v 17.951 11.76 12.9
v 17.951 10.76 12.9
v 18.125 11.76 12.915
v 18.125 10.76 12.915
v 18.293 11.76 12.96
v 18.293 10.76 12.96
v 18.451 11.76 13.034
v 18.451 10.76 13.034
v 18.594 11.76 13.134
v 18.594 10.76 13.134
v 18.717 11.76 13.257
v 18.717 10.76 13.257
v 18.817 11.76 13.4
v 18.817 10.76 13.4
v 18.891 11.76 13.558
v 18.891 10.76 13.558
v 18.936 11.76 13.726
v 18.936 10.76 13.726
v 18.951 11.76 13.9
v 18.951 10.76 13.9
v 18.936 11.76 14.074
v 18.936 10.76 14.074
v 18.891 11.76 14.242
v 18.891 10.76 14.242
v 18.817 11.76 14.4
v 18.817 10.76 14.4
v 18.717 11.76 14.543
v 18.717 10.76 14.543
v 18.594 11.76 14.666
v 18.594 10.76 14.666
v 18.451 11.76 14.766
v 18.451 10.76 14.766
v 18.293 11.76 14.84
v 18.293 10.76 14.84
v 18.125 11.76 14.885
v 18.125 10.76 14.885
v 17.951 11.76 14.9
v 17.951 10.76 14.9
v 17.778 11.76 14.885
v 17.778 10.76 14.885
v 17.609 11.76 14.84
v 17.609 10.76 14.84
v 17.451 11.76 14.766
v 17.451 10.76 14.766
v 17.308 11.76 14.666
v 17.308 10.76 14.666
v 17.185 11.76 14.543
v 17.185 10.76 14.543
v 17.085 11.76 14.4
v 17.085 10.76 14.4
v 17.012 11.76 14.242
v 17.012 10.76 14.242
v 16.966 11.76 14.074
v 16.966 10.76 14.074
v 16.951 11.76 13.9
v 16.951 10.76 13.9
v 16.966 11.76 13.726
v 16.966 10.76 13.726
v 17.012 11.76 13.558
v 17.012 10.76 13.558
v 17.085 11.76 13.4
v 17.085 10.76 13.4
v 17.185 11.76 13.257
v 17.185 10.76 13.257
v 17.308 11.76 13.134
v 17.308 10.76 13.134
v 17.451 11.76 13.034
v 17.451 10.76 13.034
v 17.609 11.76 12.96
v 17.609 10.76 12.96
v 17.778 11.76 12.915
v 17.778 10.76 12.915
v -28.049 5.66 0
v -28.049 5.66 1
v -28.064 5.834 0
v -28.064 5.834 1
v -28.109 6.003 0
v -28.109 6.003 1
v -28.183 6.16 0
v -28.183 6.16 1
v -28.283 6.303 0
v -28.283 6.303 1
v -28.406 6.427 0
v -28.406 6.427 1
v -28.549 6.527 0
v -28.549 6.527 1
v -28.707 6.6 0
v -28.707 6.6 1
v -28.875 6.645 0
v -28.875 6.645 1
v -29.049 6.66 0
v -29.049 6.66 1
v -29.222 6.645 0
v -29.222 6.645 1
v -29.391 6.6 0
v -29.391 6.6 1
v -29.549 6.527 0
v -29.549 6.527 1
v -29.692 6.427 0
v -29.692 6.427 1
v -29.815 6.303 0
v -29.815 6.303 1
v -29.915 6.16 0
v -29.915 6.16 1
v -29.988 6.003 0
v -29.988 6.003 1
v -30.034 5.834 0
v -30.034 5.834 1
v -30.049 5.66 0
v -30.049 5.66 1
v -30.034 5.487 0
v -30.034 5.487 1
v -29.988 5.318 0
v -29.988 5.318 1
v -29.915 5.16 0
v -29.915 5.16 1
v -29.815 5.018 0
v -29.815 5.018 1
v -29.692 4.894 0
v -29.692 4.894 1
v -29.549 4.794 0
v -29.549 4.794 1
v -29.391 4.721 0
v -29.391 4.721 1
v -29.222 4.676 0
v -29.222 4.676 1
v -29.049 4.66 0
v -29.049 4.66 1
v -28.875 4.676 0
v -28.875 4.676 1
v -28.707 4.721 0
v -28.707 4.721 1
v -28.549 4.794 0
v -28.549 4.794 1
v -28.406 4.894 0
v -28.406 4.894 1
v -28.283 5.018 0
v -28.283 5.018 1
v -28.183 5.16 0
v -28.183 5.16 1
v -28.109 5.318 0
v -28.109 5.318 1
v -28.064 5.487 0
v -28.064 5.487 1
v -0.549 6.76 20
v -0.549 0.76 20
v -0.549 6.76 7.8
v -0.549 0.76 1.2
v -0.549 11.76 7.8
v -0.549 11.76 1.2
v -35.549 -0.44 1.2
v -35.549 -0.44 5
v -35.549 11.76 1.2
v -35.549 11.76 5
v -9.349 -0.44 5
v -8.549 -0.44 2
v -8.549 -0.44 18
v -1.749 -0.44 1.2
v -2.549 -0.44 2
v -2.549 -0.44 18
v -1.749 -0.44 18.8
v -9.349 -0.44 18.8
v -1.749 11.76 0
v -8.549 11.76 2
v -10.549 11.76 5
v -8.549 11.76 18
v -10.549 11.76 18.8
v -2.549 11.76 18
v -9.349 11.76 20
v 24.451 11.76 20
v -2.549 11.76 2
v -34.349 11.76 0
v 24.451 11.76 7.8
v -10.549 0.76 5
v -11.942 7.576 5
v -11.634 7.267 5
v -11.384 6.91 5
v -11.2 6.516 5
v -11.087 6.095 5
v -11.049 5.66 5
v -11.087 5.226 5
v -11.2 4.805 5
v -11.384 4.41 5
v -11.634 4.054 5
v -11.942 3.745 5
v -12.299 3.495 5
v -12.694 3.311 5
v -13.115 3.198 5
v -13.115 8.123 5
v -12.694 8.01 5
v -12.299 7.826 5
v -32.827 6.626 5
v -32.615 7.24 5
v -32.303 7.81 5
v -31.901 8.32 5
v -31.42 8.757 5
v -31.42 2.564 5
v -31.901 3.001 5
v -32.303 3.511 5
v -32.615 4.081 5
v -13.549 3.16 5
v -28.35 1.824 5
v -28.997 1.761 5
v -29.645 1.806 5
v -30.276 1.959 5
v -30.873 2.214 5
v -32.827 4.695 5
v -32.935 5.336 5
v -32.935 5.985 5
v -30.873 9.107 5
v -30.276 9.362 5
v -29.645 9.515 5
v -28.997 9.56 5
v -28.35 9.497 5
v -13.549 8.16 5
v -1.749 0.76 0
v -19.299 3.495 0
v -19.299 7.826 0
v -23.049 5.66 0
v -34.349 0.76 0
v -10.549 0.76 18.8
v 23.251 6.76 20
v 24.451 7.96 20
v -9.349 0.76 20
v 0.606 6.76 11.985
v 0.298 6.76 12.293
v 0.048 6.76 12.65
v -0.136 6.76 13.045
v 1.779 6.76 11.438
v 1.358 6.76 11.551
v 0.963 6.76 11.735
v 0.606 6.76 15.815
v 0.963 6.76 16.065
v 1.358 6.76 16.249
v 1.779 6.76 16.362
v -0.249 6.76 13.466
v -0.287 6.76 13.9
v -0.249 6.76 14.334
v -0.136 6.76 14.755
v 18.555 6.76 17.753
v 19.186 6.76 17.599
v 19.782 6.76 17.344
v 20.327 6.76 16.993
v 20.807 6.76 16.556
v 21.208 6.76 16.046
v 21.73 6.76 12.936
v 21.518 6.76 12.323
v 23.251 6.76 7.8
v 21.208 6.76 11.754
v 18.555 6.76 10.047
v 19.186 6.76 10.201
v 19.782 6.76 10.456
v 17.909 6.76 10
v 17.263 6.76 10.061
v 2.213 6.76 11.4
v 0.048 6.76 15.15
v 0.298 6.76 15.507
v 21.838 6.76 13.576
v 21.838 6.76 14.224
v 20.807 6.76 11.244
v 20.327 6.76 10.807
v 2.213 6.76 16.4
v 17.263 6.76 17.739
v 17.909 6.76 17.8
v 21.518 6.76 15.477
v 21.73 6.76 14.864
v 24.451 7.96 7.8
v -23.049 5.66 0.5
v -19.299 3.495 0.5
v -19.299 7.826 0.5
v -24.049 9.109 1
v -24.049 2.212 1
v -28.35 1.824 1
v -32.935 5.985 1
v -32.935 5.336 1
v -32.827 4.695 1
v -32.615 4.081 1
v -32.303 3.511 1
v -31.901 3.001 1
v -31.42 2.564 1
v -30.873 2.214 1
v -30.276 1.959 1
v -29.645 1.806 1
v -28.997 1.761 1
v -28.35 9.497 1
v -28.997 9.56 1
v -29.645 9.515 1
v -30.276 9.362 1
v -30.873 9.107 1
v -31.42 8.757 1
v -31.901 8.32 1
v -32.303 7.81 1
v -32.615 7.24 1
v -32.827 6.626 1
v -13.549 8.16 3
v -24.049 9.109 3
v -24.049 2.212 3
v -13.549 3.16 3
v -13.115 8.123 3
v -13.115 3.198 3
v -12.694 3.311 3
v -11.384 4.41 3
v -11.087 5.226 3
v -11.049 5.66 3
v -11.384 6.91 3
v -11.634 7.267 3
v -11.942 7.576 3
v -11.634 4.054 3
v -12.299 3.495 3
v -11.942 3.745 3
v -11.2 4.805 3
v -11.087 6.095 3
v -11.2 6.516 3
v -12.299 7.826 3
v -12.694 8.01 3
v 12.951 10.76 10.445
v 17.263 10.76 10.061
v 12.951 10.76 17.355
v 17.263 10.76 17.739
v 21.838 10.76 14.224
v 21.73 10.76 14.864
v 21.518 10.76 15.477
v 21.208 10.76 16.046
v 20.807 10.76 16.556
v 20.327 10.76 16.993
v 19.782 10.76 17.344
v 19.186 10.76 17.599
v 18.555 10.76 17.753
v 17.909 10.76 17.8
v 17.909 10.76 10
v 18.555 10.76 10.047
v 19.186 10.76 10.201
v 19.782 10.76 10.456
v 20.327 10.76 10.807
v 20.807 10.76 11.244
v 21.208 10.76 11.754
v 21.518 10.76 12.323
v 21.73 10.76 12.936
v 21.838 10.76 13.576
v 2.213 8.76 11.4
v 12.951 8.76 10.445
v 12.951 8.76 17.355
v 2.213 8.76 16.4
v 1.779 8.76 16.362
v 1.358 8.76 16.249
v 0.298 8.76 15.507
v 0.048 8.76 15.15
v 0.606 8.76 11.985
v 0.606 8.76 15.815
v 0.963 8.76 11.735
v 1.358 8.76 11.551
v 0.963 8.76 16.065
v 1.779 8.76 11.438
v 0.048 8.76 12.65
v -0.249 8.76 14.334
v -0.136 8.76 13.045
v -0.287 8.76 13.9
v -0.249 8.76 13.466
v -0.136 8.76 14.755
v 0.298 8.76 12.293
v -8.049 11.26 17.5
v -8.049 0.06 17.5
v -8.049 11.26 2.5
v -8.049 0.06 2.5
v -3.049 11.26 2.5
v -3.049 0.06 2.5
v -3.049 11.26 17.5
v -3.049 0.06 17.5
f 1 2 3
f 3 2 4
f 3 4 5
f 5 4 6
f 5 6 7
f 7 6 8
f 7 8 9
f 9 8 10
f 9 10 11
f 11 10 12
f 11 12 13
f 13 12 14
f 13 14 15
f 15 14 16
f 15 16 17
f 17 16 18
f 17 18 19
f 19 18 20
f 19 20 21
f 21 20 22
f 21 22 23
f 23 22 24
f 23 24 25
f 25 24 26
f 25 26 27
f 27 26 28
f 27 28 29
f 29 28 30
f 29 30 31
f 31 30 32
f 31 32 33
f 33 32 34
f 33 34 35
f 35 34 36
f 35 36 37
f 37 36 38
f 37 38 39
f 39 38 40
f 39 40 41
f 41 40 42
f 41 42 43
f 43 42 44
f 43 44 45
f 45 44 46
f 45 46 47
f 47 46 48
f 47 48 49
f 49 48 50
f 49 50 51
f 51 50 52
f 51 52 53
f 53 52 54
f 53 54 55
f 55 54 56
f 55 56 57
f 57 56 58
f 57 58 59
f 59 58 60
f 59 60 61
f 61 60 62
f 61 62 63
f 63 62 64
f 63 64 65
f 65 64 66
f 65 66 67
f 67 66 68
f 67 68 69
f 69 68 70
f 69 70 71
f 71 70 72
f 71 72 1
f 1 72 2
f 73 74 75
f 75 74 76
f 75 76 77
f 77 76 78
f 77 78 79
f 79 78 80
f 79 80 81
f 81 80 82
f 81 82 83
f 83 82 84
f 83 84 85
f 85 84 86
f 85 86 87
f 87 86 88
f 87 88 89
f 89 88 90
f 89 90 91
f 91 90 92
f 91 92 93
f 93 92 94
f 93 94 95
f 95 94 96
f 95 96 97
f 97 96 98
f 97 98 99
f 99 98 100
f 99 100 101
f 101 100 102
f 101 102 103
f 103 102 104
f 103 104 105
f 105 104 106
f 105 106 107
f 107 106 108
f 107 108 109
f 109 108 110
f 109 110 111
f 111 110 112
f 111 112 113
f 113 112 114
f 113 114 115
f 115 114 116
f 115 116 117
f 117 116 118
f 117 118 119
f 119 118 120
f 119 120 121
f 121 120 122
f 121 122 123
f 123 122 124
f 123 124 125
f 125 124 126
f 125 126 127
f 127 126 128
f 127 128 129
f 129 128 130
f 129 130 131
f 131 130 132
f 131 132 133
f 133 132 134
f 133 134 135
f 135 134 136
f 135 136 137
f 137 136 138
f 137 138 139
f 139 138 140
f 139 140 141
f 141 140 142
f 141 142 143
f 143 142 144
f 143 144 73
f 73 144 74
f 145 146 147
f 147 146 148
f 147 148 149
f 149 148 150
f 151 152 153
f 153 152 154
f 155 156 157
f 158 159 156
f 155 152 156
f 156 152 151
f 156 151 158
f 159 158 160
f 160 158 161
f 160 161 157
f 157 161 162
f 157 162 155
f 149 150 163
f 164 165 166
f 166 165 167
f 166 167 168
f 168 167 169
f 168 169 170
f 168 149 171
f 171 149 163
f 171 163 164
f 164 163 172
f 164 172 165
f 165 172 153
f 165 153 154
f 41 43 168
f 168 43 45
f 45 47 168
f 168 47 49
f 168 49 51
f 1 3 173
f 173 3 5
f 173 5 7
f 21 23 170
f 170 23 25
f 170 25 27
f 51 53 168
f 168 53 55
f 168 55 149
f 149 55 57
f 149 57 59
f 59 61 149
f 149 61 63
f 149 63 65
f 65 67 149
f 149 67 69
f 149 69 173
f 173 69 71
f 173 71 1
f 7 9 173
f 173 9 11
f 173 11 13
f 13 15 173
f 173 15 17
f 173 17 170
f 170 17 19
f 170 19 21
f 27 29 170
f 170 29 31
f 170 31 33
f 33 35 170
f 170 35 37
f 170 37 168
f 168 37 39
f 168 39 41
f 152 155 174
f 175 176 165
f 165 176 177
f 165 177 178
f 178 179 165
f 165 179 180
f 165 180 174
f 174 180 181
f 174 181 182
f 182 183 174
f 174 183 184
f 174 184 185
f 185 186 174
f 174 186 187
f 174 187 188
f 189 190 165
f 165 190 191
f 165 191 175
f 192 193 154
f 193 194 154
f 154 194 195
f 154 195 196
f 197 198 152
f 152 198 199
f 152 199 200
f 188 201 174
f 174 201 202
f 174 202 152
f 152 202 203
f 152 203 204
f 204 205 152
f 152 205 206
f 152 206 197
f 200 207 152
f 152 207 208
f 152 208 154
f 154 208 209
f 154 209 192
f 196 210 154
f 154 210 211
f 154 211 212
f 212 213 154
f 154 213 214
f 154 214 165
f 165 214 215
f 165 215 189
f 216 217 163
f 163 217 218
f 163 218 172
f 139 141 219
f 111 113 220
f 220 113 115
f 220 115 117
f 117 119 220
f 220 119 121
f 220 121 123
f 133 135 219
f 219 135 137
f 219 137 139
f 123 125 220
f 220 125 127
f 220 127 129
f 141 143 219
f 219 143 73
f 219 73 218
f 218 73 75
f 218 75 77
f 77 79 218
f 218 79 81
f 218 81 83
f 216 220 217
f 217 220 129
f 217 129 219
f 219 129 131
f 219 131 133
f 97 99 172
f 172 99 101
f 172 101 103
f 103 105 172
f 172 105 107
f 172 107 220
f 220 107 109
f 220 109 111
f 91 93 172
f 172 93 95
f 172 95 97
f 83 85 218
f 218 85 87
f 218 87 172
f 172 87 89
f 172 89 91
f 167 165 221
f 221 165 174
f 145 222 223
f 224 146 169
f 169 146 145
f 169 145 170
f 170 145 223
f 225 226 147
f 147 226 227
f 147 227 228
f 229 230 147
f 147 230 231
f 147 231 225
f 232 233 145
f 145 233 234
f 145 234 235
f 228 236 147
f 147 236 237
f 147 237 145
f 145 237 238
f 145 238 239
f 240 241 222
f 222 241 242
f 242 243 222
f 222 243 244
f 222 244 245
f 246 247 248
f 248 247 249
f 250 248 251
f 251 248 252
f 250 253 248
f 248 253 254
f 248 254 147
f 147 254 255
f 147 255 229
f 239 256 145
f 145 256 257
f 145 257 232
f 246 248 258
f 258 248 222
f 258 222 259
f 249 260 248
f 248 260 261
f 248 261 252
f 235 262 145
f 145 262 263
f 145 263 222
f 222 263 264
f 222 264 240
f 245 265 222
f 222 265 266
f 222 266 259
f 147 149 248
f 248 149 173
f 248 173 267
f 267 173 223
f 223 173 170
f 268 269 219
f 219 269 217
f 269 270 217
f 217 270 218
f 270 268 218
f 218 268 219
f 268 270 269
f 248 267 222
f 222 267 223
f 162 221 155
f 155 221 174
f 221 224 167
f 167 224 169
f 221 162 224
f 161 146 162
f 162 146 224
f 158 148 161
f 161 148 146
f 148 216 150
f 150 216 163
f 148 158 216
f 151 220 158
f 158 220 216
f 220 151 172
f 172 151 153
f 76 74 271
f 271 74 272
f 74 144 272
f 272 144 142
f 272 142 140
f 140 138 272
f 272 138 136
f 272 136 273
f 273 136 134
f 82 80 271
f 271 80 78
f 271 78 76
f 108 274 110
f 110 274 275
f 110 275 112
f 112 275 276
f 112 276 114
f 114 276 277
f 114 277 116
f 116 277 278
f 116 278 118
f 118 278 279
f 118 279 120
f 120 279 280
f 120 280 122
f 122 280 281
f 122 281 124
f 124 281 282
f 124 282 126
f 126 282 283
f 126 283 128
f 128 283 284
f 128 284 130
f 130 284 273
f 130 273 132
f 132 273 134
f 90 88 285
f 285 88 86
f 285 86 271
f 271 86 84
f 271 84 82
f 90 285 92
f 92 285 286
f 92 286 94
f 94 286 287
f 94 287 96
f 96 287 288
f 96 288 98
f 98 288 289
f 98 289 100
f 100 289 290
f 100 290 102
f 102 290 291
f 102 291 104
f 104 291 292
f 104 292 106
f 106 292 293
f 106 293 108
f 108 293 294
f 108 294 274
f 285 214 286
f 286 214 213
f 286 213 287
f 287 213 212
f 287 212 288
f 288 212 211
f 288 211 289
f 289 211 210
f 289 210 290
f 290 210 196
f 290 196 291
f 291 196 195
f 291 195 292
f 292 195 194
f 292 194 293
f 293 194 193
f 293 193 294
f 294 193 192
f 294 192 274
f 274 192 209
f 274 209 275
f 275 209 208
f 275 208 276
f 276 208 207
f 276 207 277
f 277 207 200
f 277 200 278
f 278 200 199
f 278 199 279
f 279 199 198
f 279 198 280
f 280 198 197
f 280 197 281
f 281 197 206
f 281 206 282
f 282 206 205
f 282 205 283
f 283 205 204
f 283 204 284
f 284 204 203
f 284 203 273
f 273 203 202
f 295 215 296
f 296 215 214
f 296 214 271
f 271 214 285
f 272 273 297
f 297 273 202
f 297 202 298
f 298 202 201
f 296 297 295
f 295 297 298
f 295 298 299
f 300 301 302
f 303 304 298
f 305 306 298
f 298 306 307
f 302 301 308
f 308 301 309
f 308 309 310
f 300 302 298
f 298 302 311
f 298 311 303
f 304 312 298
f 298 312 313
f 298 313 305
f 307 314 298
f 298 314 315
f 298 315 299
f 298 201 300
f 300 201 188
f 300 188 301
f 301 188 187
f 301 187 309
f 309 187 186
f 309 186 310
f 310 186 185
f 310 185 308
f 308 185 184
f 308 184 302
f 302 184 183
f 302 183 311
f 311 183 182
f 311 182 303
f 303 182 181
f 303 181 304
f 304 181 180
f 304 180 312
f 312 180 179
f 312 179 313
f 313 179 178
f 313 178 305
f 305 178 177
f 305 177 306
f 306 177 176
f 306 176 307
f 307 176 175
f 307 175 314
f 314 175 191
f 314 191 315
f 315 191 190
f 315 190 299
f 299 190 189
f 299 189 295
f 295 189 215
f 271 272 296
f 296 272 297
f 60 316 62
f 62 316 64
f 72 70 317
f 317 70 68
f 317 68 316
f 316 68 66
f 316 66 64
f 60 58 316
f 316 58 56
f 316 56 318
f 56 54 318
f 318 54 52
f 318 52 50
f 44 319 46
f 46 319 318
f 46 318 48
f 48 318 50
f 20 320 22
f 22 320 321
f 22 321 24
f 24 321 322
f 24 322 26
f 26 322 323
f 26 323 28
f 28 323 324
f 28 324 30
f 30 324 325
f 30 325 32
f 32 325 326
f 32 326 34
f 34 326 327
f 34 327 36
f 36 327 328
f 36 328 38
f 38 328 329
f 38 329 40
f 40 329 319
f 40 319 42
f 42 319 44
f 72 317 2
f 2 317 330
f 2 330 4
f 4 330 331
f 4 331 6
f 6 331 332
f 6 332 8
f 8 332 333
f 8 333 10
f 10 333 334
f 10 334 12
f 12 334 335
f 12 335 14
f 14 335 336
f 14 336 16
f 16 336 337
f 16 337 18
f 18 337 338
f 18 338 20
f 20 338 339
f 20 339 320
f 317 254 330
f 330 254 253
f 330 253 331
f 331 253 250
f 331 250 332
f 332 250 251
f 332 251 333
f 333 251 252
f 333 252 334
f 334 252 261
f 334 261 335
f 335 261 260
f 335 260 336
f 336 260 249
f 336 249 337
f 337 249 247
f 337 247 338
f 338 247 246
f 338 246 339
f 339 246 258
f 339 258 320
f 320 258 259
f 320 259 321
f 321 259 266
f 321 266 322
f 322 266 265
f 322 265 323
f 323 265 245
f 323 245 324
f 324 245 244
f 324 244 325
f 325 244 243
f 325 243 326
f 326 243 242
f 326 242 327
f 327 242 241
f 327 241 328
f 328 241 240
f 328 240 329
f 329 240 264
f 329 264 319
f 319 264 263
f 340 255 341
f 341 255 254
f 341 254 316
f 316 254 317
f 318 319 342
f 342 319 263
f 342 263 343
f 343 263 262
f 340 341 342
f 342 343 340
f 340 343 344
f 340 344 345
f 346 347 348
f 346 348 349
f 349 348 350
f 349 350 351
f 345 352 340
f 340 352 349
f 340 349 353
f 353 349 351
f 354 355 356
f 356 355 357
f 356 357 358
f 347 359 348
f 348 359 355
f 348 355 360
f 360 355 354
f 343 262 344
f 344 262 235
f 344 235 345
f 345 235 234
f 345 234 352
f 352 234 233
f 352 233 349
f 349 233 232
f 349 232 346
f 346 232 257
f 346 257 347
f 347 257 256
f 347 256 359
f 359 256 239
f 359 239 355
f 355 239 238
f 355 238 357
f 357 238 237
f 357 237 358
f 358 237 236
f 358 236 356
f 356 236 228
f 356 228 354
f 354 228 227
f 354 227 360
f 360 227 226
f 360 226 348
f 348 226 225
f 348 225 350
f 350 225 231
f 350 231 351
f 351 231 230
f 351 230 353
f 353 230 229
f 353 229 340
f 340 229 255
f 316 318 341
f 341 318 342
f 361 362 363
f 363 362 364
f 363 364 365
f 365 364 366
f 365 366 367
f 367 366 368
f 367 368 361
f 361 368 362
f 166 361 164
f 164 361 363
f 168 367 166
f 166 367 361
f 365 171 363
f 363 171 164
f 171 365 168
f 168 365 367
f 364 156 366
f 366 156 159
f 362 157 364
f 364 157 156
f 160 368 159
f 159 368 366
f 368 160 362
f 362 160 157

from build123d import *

# Parameters (mm, degrees)
SKETCH1_W               = 35
SKETCH1_H               = 12.2
BOSS_EXTRUDE1_DEPTH     = 5
SKETCH2_R               = 1
CUT_EXTRUDE1_DEPTH      = 38.775970389
SKETCH3_W               = 10
SKETCH3_H               = 12.2
BOSS_EXTRUDE2_DEPTH     = 15
SKETCH4_W               = 12.2
SKETCH4_H               = 5
BOSS_EXTRUDE3_DEPTH     = 25
CUT_EXTRUDE2_DEPTH      = 42.419255471
CUT_EXTRUDE2_DEPTH_BACK = 42.419255471
SKETCH5_R               = 1
CUT_EXTRUDE3_DEPTH      = 0.5
CHAMFER1_SIZE           = 1.2
SKETCH8_R               = 3.9
CUT_EXTRUDE4_DEPTH      = 4
CUT_EXTRUDE5_DEPTH      = 2
CUT_EXTRUDE6_DEPTH      = 4
SKETCH20_R              = 3.9
CUT_EXTRUDE11_DEPTH     = 4
CUT_EXTRUDE12_DEPTH     = 2
CUT_EXTRUDE13_DEPTH     = 4
SKETCH23_W              = 5
SKETCH23_H              = 15
CUT_EXTRUDE14_DEPTH     = 43.574108608
CHAMFER2_SIZE           = 0.5


with BuildPart() as part:
    # Sketch1 → Boss-Extrude1 (new body)
    with BuildSketch(Plane.XY):
        with Locations((-18.048765432, 5.660493827)):
            Rectangle(SKETCH1_W, SKETCH1_H)
    extrude(amount=BOSS_EXTRUDE1_DEPTH)

    # Sketch2 → Cut-Extrude1 (cut, through all)
    with BuildSketch(Plane.XY.offset(5)):
        with Locations((-29.048765432, 5.660493827)):
            Circle(SKETCH2_R)
    extrude(amount=-CUT_EXTRUDE1_DEPTH, mode=Mode.SUBTRACT)

    # Sketch3 → Boss-Extrude2 (add)
    with BuildSketch(Plane.XY.offset(5)):
        with Locations((-5.548765432, 5.660493827)):
            Rectangle(SKETCH3_W, SKETCH3_H)
    extrude(amount=BOSS_EXTRUDE2_DEPTH)

    # Sketch4 → Boss-Extrude3 (add)
    with BuildSketch(Plane(origin=(-0.548765432, 0, 0), x_dir=(0, 0, -1), z_dir=(1, 0, 0))):
        with Locations((-13.9, 9.260493827)):
            Rectangle(SKETCH4_W, SKETCH4_H)
    extrude(amount=BOSS_EXTRUDE3_DEPTH)

    # Sketch5 → Cut-Extrude2 (cut, two sides: drawn at the far end of the back side and taken through both)
    with BuildSketch(Plane.XZ.offset(-6.760493827).offset(-CUT_EXTRUDE2_DEPTH_BACK)):
        with Locations(Location((17.951234568, 13.9, 0), (0, 0, 270))):
            Circle(SKETCH5_R)
    extrude(amount=CUT_EXTRUDE2_DEPTH + CUT_EXTRUDE2_DEPTH_BACK, mode=Mode.SUBTRACT)

    # Sketch7 → Cut-Extrude3 (cut)
    with BuildSketch(Plane(origin=(0, 0, 0), x_dir=(-1, 0, 0), z_dir=(0, 0, -1))):
        Polygon((23.048765432, 5.660493827), (19.298765432, 7.825557337), (19.298765432, 3.495430318), align=None)
    extrude(amount=-CUT_EXTRUDE3_DEPTH, mode=Mode.SUBTRACT)

    # Chamfer1
    chamfer1_edges = [part.edges().sort_by_distance(p)[0] for p in [
        (-10.548765432, -0.439506173, 12.5),
        (-10.548765432, 5.660493827, 20),
        (-5.548765432, -0.439506173, 20),
        (24.451234568, 6.760493827, 13.9),
        (-0.548765432, 5.660493827, 0),
        (-18.048765432, -0.439506173, 0),
        (-35.548765432, 5.660493827, 0),
        (-0.548765432, -0.439506173, 10),
    ]]
    chamfer(chamfer1_edges, length=CHAMFER1_SIZE)

    # Sketch8 → Cut-Extrude4 (cut)
    with BuildSketch(Plane.XY.offset(5)):
        with Locations((-29.048765432, 5.660493827)):
            Circle(SKETCH8_R)
    extrude(amount=-CUT_EXTRUDE4_DEPTH, mode=Mode.SUBTRACT)

    # Sketch10 → Cut-Extrude5 (cut)
    with BuildSketch(Plane.XY.offset(5)):
        with BuildLine():
            Line((-29.048765432, 9.560493827), (-13.548765432, 8.160493827))
            ThreePointArc((-13.548765432, 8.160493827), (-11.048765432, 5.660493827), (-13.548765432, 3.160493827))
            Line((-13.548765432, 3.160493827), (-29.048765432, 1.760493827))
            Line((-29.048765432, 1.760493827), (-29.048765432, 9.560493827))
        make_face()
    extrude(amount=-CUT_EXTRUDE5_DEPTH, mode=Mode.SUBTRACT)

    # Sketch12 → Cut-Extrude6 (cut)
    with BuildSketch(Plane.XY.offset(5)):
        Polygon((-24.048765432, 5.660493827), (-24.048765432, 9.108880924), (-29.048765432, 9.560493827), (-29.048765432, 1.760493827), (-24.048765432, 2.21210673), align=None)
    extrude(amount=-CUT_EXTRUDE6_DEPTH, mode=Mode.SUBTRACT)

    # Sketch20 → Cut-Extrude11 (cut)
    with BuildSketch(Plane.XZ.offset(-6.760493827)):
        with Locations(Location((17.951234568, 13.9, 0), (0, 0, 270))):
            Circle(SKETCH20_R)
    extrude(amount=-CUT_EXTRUDE11_DEPTH, mode=Mode.SUBTRACT)

    # Sketch21 → Cut-Extrude12 (cut)
    with BuildSketch(Plane.XZ.offset(-6.760493827)):
        with BuildLine():
            Line((17.951234568, 17.8), (2.21295028, 16.4))
            ThreePointArc((2.21295028, 16.4), (-0.28704972, 13.9), (2.21295028, 11.4))
            Line((2.21295028, 11.4), (17.951234568, 10))
            Line((17.951234568, 10), (17.951234568, 17.8))
        make_face()
    extrude(amount=-CUT_EXTRUDE12_DEPTH, mode=Mode.SUBTRACT)

    # Sketch22 → Cut-Extrude13 (cut)
    with BuildSketch(Plane.XZ.offset(-6.760493827)):
        Polygon((17.951234568, 17.8), (17.951234568, 10), (12.951234568, 10.444775293), (12.951234568, 17.355224707), align=None)
    extrude(amount=-CUT_EXTRUDE13_DEPTH, mode=Mode.SUBTRACT)

    # Sketch23 → Cut-Extrude14 (cut, through all)
    with BuildSketch(Plane(origin=(0, 11.760493827, 0), x_dir=(1, 0, 0), z_dir=(0, 1, 0))):
        with Locations((-5.548765432, -10)):
            Rectangle(SKETCH23_W, SKETCH23_H)
    extrude(amount=-CUT_EXTRUDE14_DEPTH, mode=Mode.SUBTRACT)

    # Chamfer2
    chamfer2_edges = [part.edges().sort_by_distance(p)[0] for p in [
        (-8.048765432, -0.439506173, 10),
        (-5.548765432, -0.439506173, 2.5),
        (-3.048765432, -0.439506173, 10),
        (-5.548765432, -0.439506173, 17.5),
        (-8.048765432, 11.760493827, 10),
        (-5.548765432, 11.760493827, 17.5),
        (-3.048765432, 11.760493827, 10),
        (-5.548765432, 11.760493827, 2.5),
    ]]
    chamfer(chamfer2_edges, length=CHAMFER2_SIZE)


solid = part.part
